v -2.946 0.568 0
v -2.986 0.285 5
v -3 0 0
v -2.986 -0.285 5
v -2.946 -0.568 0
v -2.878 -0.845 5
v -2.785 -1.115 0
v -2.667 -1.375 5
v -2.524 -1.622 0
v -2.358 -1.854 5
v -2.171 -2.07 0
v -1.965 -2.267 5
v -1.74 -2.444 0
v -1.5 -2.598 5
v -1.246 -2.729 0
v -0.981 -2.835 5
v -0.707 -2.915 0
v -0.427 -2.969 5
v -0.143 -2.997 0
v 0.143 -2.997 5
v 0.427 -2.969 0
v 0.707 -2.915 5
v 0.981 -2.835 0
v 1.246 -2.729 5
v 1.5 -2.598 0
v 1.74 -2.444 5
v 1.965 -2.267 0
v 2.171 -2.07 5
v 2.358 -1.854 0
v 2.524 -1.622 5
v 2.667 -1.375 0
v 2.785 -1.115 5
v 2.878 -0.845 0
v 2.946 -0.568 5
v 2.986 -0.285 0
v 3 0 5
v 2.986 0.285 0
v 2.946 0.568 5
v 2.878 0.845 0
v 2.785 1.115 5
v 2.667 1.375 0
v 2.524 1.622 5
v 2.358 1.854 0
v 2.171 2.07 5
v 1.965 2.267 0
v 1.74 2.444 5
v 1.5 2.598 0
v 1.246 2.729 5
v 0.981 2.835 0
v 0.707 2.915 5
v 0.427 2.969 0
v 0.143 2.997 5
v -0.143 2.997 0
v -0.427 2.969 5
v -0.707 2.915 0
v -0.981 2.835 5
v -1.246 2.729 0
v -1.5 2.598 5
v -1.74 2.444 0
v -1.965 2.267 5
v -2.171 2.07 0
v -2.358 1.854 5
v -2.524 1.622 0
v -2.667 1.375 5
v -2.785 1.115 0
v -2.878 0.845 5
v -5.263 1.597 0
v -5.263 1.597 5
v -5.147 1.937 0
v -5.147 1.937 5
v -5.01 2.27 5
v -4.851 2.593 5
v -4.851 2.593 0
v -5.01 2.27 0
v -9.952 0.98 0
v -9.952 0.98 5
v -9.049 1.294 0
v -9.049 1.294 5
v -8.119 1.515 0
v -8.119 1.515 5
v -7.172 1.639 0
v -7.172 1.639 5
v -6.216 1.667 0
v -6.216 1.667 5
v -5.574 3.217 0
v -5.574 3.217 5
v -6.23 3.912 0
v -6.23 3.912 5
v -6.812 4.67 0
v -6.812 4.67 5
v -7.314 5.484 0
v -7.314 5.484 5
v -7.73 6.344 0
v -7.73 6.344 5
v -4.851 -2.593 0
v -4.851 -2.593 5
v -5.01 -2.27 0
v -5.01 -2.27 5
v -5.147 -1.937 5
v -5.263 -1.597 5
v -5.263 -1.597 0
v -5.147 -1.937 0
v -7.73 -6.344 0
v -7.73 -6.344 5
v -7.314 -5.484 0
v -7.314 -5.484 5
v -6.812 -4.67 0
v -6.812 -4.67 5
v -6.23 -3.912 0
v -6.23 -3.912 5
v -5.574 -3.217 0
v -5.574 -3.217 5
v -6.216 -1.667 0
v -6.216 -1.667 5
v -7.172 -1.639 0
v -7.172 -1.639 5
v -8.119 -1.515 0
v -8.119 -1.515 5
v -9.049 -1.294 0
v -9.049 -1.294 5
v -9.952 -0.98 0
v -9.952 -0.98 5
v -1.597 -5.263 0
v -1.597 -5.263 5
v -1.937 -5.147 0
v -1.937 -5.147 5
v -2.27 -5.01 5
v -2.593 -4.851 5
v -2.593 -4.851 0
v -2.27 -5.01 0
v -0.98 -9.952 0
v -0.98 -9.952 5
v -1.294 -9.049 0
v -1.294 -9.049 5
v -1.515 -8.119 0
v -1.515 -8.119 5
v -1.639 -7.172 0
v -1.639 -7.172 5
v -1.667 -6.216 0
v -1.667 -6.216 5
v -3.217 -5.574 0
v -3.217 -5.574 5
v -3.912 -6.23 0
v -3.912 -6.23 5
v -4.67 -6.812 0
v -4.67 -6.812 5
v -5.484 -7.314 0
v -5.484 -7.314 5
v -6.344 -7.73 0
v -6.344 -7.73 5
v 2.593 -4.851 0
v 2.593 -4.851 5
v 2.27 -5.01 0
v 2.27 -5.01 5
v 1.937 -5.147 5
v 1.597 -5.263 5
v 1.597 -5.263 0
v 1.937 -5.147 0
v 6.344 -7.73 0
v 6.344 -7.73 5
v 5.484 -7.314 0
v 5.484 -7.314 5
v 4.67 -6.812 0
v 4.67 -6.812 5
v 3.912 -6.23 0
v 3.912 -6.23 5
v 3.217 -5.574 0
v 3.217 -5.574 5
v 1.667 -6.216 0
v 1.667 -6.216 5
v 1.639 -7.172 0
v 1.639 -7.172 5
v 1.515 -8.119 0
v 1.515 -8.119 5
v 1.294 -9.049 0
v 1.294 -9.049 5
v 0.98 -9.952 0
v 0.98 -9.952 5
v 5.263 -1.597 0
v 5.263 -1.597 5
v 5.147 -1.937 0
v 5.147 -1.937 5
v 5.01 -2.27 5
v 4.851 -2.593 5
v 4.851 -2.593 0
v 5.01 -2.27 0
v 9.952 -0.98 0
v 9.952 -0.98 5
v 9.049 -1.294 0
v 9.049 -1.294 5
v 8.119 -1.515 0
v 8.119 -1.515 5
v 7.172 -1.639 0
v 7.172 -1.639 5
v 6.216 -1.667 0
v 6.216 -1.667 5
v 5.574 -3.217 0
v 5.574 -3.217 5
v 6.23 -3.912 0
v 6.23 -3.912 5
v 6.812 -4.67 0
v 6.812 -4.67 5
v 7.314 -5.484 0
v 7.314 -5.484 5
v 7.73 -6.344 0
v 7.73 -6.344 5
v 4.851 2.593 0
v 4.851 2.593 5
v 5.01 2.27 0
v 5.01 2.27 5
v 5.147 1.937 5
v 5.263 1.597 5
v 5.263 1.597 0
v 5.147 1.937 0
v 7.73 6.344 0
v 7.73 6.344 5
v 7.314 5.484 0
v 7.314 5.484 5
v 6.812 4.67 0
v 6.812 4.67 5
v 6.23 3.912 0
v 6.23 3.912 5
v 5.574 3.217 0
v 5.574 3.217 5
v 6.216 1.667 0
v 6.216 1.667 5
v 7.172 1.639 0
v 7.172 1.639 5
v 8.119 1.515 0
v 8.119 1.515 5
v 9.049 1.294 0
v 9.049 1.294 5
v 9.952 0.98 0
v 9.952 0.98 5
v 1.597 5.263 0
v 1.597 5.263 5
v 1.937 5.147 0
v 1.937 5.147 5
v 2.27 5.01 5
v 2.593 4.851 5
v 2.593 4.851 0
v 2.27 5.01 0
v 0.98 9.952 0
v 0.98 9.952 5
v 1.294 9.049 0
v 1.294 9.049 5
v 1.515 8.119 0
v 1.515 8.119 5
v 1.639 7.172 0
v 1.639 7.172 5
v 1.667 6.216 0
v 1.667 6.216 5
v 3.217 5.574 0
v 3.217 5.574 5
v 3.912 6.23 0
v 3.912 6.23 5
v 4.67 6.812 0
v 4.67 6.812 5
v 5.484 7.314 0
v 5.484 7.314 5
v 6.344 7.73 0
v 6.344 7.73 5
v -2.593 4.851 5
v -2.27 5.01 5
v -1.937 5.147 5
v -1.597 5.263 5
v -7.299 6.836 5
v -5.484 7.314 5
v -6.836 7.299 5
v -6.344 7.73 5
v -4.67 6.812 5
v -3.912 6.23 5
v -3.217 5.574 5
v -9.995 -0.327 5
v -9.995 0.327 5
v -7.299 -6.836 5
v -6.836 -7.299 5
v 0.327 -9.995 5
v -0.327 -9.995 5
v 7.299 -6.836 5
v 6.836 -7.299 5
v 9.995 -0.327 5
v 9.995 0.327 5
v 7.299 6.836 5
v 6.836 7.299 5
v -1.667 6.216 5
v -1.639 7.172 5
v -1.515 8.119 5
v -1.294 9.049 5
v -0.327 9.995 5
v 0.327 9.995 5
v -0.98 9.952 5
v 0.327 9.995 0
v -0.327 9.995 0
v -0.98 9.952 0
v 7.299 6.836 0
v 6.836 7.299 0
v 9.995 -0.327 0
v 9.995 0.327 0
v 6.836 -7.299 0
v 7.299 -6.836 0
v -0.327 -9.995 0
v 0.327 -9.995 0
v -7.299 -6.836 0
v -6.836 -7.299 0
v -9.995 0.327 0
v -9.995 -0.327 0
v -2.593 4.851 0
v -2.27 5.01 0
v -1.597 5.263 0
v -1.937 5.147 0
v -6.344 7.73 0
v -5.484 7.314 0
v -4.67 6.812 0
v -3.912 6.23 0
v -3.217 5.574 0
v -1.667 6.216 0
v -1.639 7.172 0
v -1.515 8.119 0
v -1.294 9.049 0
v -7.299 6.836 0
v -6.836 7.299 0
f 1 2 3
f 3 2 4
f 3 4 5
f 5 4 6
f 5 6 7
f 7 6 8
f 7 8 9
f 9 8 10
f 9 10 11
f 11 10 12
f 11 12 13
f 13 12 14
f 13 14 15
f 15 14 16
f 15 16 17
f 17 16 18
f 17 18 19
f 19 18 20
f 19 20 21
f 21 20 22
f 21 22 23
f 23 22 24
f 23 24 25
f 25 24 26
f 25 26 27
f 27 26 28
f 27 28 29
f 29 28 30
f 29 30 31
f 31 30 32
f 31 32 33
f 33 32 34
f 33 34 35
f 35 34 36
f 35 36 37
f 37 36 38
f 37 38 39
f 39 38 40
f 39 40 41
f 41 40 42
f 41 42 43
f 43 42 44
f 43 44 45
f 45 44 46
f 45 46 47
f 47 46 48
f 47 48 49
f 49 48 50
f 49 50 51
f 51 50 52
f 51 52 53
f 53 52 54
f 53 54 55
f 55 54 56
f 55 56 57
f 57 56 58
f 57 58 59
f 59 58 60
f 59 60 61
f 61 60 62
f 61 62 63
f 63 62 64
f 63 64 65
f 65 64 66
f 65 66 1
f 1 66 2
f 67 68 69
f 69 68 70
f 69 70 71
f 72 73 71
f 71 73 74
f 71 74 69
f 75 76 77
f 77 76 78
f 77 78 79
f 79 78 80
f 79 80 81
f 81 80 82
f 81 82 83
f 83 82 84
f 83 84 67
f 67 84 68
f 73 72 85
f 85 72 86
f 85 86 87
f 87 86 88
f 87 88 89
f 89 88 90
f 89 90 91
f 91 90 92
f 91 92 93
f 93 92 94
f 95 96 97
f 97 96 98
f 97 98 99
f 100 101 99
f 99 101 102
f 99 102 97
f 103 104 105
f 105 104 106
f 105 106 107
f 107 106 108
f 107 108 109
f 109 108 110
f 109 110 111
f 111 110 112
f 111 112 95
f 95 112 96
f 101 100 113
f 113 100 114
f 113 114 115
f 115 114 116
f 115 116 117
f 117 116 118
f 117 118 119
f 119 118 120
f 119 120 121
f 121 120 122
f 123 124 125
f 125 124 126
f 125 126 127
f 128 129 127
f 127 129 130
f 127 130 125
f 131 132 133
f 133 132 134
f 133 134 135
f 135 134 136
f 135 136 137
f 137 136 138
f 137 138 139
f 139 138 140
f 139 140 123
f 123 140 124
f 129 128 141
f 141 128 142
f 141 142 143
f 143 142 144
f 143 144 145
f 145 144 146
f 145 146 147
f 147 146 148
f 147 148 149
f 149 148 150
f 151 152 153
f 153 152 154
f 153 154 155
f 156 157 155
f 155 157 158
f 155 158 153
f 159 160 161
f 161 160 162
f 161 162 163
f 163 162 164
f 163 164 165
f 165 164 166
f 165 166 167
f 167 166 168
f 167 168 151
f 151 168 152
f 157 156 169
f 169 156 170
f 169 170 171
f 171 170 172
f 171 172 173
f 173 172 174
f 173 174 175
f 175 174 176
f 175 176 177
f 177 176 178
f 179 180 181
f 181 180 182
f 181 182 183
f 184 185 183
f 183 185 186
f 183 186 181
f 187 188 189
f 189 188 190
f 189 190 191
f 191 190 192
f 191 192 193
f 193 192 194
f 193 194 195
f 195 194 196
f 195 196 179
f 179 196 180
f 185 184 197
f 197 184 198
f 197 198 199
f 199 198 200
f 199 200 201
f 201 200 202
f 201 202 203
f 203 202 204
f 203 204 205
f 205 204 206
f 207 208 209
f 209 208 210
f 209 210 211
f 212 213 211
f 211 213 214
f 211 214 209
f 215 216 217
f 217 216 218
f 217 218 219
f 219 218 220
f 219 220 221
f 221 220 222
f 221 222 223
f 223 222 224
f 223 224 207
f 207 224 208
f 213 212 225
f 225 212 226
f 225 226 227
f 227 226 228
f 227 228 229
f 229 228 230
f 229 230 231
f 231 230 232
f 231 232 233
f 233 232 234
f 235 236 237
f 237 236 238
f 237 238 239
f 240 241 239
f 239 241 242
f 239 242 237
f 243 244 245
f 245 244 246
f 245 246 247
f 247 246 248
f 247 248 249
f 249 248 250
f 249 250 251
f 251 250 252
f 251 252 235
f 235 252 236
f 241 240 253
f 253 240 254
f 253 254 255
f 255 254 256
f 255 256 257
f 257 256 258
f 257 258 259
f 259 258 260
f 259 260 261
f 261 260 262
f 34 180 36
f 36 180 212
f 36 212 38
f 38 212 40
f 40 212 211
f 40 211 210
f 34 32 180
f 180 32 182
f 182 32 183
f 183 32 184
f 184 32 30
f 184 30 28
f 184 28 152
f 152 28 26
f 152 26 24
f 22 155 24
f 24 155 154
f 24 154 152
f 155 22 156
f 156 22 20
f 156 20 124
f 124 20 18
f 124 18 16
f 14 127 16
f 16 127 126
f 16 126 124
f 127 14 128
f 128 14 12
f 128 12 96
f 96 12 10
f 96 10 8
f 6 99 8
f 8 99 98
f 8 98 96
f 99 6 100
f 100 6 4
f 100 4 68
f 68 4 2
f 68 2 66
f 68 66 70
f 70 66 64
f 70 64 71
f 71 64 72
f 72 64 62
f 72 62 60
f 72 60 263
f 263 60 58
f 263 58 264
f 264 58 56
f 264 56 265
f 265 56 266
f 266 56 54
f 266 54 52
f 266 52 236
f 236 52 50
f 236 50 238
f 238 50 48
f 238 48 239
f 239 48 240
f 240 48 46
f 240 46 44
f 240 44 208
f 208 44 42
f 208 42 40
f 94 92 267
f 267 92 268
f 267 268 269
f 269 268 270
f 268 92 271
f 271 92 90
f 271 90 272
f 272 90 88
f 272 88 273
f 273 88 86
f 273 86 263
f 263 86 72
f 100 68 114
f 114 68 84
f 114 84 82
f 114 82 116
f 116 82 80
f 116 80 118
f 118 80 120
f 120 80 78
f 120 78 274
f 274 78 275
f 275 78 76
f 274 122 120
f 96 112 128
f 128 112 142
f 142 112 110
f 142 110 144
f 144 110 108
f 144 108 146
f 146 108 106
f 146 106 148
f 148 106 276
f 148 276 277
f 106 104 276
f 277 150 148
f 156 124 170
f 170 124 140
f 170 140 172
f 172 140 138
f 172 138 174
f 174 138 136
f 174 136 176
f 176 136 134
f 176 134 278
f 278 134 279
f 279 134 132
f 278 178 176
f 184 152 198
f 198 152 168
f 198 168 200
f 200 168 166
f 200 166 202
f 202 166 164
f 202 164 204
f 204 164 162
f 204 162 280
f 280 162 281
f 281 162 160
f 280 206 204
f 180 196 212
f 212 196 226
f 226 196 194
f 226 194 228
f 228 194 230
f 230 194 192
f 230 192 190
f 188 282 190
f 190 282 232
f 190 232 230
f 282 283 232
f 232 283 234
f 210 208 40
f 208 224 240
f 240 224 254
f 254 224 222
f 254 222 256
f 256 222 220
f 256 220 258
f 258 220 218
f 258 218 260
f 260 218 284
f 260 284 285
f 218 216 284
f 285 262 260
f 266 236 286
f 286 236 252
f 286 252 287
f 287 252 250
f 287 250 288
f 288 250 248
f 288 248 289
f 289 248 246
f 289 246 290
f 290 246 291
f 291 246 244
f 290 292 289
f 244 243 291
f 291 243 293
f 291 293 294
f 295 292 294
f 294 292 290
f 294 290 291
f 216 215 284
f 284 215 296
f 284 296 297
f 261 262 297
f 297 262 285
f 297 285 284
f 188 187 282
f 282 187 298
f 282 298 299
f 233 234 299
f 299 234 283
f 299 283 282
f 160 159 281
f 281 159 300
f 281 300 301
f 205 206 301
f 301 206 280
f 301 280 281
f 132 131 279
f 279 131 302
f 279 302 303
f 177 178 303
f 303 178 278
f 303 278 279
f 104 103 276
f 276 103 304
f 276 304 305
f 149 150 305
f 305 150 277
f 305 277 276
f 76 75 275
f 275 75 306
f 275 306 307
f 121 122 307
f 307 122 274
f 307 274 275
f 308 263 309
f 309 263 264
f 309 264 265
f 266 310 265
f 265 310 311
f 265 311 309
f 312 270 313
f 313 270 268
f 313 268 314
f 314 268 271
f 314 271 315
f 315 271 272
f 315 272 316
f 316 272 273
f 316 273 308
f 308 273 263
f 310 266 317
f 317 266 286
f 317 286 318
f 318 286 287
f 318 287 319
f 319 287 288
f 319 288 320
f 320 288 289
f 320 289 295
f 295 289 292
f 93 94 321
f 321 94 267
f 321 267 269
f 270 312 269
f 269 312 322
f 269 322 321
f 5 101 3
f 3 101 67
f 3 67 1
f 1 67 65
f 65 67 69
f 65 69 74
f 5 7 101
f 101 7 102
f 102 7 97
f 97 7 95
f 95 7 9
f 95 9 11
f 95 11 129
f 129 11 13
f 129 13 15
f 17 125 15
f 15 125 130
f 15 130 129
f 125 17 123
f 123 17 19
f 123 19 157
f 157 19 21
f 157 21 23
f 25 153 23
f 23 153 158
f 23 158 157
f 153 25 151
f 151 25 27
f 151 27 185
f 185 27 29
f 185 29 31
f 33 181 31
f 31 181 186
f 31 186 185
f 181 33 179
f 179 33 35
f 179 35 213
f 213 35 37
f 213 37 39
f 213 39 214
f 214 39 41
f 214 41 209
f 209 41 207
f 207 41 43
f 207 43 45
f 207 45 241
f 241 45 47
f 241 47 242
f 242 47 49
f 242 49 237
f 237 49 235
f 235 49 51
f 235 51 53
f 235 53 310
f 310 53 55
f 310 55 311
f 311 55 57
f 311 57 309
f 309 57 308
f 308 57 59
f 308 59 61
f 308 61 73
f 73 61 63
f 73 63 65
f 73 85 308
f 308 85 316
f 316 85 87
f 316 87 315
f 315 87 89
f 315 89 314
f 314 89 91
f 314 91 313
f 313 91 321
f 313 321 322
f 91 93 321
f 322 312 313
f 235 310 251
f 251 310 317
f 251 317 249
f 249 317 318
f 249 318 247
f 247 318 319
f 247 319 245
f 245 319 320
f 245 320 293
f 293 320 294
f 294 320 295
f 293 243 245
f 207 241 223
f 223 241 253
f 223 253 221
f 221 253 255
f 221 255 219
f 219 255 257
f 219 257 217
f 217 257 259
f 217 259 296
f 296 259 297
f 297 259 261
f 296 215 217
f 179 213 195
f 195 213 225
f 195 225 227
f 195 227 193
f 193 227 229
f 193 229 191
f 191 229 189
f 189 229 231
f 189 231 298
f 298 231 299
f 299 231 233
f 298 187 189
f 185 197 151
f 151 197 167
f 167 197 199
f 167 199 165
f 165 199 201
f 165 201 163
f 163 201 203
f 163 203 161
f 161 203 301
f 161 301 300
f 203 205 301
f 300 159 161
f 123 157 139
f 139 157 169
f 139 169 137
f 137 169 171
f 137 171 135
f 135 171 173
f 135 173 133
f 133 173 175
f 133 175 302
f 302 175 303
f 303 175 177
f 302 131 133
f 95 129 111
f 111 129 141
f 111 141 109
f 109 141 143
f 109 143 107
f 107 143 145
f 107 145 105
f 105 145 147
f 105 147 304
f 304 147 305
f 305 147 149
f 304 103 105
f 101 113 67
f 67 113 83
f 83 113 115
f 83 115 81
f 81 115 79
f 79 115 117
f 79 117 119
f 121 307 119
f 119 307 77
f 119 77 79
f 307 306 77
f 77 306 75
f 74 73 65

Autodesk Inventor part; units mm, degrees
sketch "Sketch1" plane through (0, 0, 0) normal (0, 0, 1) x (1, 0, 0)
  circle A0 centre (0, 0) radius 10
  dimension "d0" = 20
extrude "Extrusion1" add sketch "Sketch1" along normal blind 5
ref_plane "Work Plane2" through (0, 0, 2.5) normal (0, 0, 1) x (1, 0, 0)
sketch "Sketch2" plane through (0, 0, 0) normal (0, 0, -1) x (-1, 0, 0)
  circle A0 centre (0, 0) radius 10 projected
  circle A1 centre (0, 0) radius 8
  dimension "d3" = 16
surface extrude "Pitch Diameter" sketch "Sketch2" against normal through all shown no curves A1
ref_plane "Work Plane8" through (0, 0, 0) normal (0.9238795, 0.3826834, 0) x (0, 0, 1)
ref_plane "Work Plane9" through (0, 0, 0) normal (1, 0, 0) x (0, 1, 0)
spur gear teeth "Spur Gear" teeth 8 pitch diameter 16 tip diameter 20 root diameter 11 face width 5 start plane through (0, 0, 0) normal (0, 0, -1) x (-1, 0, 0)
sketch "Sketch3" plane through (0, 0, 5) normal (0, 0, 1) x (1, 0, 0)
  circle A0 centre (0, 0) radius 3
  dimension "d49" = 6
extrude "Extrusion2" cut sketch "Sketch3" against normal through all
equation "\"d0\" = da_da"
equation "\"d1\" = da_b"
equation "\"d3\" = da_d"
equation "\"da_da\" = 20"
equation "\"da_b\" = 5"
equation "\"da_d\" = 16"
properties part number "Spur Gear1" material "Steel"
